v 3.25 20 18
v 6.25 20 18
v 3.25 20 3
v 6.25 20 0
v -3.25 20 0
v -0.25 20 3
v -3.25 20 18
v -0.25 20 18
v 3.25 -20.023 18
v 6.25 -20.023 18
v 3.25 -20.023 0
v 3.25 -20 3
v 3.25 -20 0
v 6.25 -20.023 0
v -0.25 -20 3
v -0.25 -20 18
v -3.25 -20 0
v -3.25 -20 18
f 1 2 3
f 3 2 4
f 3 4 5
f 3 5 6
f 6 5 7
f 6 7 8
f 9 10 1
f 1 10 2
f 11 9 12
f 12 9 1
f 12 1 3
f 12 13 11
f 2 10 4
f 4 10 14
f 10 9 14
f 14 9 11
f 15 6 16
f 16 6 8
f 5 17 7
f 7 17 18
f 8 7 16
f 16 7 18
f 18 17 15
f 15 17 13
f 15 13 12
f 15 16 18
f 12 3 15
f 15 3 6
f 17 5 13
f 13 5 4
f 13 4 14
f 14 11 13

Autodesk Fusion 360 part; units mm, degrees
sketch "Sketch1" plane through (0, 0, 0) normal (0, 0, 1) x (1, 0, 0)
  line L0 (0, 0) -> (3, 0)
  line L1 (3, 0) -> (3, -20)
  line L2 (3, -20) -> (0, -20)
  line L3 (0, -20) -> (0, 0)
  line L4 (3, 0) -> (3.25, 0)
  line L5 (3.25, 0) -> (3.25, -20)
  line L6 (3.25, -20) -> (3, -20)
  line L7 (3, -20) -> (3, 0)
  line L8 (0, 0) -> (-0.25, 0)
  line L9 (-0.25, 0) -> (-0.25, -20)
  line L10 (-0.25, -20) -> (0, -20)
  line L11 (0, -20) -> (0, 0)
  line L12 (3.25, 0) -> (6.25, 0)
  line L13 (6.25, 0) -> (6.25, -20.0231)
  line L14 (6.25, -20.0231) -> (3.25, -20.0231)
  line L15 (3.25, -20.0231) -> (3.25, 0)
  line L16 (-0.25, 0) -> (-3.25, 0)
  line L17 (-3.25, 0) -> (-3.25, -20)
  line L18 (-3.25, -20) -> (-0.25, -20)
  line L19 (-0.25, -20) -> (-0.25, 0)
  dimension "d1" = 3
  dimension "d2" = 20
  dimension "d3" = 0.25
  dimension "d4" = 0.25
  dimension "d5" = 3
  dimension "d6" = 3
  dimension "d7" = 20
extrude "Extrude1" add sketch "Sketch1" along normal blind 3 contours L0 L1 L2 L3 L7 L11 | L3 L8 L9 L10 L11 L19 | L1 L4 L5 L6 L7 L15
extrude "Extrude2" add sketch "Sketch1" along normal blind 18 contours L9 L16 L17 L18 L19 | L5 L12 L13 L14 L15
extrude "Extrude3" add 1 faces at (5.25, -6.6744, 18) along direction (0, 0, 1) blind 15
extrude "Extrude4" cut 1 faces at (5.25, -6.6744, 33) along direction (0, 0, -1) blind 15
extrude "Extrude5" add 1 faces at (-2.25, 0, 7) along direction (0, 1, 0) blind 20
